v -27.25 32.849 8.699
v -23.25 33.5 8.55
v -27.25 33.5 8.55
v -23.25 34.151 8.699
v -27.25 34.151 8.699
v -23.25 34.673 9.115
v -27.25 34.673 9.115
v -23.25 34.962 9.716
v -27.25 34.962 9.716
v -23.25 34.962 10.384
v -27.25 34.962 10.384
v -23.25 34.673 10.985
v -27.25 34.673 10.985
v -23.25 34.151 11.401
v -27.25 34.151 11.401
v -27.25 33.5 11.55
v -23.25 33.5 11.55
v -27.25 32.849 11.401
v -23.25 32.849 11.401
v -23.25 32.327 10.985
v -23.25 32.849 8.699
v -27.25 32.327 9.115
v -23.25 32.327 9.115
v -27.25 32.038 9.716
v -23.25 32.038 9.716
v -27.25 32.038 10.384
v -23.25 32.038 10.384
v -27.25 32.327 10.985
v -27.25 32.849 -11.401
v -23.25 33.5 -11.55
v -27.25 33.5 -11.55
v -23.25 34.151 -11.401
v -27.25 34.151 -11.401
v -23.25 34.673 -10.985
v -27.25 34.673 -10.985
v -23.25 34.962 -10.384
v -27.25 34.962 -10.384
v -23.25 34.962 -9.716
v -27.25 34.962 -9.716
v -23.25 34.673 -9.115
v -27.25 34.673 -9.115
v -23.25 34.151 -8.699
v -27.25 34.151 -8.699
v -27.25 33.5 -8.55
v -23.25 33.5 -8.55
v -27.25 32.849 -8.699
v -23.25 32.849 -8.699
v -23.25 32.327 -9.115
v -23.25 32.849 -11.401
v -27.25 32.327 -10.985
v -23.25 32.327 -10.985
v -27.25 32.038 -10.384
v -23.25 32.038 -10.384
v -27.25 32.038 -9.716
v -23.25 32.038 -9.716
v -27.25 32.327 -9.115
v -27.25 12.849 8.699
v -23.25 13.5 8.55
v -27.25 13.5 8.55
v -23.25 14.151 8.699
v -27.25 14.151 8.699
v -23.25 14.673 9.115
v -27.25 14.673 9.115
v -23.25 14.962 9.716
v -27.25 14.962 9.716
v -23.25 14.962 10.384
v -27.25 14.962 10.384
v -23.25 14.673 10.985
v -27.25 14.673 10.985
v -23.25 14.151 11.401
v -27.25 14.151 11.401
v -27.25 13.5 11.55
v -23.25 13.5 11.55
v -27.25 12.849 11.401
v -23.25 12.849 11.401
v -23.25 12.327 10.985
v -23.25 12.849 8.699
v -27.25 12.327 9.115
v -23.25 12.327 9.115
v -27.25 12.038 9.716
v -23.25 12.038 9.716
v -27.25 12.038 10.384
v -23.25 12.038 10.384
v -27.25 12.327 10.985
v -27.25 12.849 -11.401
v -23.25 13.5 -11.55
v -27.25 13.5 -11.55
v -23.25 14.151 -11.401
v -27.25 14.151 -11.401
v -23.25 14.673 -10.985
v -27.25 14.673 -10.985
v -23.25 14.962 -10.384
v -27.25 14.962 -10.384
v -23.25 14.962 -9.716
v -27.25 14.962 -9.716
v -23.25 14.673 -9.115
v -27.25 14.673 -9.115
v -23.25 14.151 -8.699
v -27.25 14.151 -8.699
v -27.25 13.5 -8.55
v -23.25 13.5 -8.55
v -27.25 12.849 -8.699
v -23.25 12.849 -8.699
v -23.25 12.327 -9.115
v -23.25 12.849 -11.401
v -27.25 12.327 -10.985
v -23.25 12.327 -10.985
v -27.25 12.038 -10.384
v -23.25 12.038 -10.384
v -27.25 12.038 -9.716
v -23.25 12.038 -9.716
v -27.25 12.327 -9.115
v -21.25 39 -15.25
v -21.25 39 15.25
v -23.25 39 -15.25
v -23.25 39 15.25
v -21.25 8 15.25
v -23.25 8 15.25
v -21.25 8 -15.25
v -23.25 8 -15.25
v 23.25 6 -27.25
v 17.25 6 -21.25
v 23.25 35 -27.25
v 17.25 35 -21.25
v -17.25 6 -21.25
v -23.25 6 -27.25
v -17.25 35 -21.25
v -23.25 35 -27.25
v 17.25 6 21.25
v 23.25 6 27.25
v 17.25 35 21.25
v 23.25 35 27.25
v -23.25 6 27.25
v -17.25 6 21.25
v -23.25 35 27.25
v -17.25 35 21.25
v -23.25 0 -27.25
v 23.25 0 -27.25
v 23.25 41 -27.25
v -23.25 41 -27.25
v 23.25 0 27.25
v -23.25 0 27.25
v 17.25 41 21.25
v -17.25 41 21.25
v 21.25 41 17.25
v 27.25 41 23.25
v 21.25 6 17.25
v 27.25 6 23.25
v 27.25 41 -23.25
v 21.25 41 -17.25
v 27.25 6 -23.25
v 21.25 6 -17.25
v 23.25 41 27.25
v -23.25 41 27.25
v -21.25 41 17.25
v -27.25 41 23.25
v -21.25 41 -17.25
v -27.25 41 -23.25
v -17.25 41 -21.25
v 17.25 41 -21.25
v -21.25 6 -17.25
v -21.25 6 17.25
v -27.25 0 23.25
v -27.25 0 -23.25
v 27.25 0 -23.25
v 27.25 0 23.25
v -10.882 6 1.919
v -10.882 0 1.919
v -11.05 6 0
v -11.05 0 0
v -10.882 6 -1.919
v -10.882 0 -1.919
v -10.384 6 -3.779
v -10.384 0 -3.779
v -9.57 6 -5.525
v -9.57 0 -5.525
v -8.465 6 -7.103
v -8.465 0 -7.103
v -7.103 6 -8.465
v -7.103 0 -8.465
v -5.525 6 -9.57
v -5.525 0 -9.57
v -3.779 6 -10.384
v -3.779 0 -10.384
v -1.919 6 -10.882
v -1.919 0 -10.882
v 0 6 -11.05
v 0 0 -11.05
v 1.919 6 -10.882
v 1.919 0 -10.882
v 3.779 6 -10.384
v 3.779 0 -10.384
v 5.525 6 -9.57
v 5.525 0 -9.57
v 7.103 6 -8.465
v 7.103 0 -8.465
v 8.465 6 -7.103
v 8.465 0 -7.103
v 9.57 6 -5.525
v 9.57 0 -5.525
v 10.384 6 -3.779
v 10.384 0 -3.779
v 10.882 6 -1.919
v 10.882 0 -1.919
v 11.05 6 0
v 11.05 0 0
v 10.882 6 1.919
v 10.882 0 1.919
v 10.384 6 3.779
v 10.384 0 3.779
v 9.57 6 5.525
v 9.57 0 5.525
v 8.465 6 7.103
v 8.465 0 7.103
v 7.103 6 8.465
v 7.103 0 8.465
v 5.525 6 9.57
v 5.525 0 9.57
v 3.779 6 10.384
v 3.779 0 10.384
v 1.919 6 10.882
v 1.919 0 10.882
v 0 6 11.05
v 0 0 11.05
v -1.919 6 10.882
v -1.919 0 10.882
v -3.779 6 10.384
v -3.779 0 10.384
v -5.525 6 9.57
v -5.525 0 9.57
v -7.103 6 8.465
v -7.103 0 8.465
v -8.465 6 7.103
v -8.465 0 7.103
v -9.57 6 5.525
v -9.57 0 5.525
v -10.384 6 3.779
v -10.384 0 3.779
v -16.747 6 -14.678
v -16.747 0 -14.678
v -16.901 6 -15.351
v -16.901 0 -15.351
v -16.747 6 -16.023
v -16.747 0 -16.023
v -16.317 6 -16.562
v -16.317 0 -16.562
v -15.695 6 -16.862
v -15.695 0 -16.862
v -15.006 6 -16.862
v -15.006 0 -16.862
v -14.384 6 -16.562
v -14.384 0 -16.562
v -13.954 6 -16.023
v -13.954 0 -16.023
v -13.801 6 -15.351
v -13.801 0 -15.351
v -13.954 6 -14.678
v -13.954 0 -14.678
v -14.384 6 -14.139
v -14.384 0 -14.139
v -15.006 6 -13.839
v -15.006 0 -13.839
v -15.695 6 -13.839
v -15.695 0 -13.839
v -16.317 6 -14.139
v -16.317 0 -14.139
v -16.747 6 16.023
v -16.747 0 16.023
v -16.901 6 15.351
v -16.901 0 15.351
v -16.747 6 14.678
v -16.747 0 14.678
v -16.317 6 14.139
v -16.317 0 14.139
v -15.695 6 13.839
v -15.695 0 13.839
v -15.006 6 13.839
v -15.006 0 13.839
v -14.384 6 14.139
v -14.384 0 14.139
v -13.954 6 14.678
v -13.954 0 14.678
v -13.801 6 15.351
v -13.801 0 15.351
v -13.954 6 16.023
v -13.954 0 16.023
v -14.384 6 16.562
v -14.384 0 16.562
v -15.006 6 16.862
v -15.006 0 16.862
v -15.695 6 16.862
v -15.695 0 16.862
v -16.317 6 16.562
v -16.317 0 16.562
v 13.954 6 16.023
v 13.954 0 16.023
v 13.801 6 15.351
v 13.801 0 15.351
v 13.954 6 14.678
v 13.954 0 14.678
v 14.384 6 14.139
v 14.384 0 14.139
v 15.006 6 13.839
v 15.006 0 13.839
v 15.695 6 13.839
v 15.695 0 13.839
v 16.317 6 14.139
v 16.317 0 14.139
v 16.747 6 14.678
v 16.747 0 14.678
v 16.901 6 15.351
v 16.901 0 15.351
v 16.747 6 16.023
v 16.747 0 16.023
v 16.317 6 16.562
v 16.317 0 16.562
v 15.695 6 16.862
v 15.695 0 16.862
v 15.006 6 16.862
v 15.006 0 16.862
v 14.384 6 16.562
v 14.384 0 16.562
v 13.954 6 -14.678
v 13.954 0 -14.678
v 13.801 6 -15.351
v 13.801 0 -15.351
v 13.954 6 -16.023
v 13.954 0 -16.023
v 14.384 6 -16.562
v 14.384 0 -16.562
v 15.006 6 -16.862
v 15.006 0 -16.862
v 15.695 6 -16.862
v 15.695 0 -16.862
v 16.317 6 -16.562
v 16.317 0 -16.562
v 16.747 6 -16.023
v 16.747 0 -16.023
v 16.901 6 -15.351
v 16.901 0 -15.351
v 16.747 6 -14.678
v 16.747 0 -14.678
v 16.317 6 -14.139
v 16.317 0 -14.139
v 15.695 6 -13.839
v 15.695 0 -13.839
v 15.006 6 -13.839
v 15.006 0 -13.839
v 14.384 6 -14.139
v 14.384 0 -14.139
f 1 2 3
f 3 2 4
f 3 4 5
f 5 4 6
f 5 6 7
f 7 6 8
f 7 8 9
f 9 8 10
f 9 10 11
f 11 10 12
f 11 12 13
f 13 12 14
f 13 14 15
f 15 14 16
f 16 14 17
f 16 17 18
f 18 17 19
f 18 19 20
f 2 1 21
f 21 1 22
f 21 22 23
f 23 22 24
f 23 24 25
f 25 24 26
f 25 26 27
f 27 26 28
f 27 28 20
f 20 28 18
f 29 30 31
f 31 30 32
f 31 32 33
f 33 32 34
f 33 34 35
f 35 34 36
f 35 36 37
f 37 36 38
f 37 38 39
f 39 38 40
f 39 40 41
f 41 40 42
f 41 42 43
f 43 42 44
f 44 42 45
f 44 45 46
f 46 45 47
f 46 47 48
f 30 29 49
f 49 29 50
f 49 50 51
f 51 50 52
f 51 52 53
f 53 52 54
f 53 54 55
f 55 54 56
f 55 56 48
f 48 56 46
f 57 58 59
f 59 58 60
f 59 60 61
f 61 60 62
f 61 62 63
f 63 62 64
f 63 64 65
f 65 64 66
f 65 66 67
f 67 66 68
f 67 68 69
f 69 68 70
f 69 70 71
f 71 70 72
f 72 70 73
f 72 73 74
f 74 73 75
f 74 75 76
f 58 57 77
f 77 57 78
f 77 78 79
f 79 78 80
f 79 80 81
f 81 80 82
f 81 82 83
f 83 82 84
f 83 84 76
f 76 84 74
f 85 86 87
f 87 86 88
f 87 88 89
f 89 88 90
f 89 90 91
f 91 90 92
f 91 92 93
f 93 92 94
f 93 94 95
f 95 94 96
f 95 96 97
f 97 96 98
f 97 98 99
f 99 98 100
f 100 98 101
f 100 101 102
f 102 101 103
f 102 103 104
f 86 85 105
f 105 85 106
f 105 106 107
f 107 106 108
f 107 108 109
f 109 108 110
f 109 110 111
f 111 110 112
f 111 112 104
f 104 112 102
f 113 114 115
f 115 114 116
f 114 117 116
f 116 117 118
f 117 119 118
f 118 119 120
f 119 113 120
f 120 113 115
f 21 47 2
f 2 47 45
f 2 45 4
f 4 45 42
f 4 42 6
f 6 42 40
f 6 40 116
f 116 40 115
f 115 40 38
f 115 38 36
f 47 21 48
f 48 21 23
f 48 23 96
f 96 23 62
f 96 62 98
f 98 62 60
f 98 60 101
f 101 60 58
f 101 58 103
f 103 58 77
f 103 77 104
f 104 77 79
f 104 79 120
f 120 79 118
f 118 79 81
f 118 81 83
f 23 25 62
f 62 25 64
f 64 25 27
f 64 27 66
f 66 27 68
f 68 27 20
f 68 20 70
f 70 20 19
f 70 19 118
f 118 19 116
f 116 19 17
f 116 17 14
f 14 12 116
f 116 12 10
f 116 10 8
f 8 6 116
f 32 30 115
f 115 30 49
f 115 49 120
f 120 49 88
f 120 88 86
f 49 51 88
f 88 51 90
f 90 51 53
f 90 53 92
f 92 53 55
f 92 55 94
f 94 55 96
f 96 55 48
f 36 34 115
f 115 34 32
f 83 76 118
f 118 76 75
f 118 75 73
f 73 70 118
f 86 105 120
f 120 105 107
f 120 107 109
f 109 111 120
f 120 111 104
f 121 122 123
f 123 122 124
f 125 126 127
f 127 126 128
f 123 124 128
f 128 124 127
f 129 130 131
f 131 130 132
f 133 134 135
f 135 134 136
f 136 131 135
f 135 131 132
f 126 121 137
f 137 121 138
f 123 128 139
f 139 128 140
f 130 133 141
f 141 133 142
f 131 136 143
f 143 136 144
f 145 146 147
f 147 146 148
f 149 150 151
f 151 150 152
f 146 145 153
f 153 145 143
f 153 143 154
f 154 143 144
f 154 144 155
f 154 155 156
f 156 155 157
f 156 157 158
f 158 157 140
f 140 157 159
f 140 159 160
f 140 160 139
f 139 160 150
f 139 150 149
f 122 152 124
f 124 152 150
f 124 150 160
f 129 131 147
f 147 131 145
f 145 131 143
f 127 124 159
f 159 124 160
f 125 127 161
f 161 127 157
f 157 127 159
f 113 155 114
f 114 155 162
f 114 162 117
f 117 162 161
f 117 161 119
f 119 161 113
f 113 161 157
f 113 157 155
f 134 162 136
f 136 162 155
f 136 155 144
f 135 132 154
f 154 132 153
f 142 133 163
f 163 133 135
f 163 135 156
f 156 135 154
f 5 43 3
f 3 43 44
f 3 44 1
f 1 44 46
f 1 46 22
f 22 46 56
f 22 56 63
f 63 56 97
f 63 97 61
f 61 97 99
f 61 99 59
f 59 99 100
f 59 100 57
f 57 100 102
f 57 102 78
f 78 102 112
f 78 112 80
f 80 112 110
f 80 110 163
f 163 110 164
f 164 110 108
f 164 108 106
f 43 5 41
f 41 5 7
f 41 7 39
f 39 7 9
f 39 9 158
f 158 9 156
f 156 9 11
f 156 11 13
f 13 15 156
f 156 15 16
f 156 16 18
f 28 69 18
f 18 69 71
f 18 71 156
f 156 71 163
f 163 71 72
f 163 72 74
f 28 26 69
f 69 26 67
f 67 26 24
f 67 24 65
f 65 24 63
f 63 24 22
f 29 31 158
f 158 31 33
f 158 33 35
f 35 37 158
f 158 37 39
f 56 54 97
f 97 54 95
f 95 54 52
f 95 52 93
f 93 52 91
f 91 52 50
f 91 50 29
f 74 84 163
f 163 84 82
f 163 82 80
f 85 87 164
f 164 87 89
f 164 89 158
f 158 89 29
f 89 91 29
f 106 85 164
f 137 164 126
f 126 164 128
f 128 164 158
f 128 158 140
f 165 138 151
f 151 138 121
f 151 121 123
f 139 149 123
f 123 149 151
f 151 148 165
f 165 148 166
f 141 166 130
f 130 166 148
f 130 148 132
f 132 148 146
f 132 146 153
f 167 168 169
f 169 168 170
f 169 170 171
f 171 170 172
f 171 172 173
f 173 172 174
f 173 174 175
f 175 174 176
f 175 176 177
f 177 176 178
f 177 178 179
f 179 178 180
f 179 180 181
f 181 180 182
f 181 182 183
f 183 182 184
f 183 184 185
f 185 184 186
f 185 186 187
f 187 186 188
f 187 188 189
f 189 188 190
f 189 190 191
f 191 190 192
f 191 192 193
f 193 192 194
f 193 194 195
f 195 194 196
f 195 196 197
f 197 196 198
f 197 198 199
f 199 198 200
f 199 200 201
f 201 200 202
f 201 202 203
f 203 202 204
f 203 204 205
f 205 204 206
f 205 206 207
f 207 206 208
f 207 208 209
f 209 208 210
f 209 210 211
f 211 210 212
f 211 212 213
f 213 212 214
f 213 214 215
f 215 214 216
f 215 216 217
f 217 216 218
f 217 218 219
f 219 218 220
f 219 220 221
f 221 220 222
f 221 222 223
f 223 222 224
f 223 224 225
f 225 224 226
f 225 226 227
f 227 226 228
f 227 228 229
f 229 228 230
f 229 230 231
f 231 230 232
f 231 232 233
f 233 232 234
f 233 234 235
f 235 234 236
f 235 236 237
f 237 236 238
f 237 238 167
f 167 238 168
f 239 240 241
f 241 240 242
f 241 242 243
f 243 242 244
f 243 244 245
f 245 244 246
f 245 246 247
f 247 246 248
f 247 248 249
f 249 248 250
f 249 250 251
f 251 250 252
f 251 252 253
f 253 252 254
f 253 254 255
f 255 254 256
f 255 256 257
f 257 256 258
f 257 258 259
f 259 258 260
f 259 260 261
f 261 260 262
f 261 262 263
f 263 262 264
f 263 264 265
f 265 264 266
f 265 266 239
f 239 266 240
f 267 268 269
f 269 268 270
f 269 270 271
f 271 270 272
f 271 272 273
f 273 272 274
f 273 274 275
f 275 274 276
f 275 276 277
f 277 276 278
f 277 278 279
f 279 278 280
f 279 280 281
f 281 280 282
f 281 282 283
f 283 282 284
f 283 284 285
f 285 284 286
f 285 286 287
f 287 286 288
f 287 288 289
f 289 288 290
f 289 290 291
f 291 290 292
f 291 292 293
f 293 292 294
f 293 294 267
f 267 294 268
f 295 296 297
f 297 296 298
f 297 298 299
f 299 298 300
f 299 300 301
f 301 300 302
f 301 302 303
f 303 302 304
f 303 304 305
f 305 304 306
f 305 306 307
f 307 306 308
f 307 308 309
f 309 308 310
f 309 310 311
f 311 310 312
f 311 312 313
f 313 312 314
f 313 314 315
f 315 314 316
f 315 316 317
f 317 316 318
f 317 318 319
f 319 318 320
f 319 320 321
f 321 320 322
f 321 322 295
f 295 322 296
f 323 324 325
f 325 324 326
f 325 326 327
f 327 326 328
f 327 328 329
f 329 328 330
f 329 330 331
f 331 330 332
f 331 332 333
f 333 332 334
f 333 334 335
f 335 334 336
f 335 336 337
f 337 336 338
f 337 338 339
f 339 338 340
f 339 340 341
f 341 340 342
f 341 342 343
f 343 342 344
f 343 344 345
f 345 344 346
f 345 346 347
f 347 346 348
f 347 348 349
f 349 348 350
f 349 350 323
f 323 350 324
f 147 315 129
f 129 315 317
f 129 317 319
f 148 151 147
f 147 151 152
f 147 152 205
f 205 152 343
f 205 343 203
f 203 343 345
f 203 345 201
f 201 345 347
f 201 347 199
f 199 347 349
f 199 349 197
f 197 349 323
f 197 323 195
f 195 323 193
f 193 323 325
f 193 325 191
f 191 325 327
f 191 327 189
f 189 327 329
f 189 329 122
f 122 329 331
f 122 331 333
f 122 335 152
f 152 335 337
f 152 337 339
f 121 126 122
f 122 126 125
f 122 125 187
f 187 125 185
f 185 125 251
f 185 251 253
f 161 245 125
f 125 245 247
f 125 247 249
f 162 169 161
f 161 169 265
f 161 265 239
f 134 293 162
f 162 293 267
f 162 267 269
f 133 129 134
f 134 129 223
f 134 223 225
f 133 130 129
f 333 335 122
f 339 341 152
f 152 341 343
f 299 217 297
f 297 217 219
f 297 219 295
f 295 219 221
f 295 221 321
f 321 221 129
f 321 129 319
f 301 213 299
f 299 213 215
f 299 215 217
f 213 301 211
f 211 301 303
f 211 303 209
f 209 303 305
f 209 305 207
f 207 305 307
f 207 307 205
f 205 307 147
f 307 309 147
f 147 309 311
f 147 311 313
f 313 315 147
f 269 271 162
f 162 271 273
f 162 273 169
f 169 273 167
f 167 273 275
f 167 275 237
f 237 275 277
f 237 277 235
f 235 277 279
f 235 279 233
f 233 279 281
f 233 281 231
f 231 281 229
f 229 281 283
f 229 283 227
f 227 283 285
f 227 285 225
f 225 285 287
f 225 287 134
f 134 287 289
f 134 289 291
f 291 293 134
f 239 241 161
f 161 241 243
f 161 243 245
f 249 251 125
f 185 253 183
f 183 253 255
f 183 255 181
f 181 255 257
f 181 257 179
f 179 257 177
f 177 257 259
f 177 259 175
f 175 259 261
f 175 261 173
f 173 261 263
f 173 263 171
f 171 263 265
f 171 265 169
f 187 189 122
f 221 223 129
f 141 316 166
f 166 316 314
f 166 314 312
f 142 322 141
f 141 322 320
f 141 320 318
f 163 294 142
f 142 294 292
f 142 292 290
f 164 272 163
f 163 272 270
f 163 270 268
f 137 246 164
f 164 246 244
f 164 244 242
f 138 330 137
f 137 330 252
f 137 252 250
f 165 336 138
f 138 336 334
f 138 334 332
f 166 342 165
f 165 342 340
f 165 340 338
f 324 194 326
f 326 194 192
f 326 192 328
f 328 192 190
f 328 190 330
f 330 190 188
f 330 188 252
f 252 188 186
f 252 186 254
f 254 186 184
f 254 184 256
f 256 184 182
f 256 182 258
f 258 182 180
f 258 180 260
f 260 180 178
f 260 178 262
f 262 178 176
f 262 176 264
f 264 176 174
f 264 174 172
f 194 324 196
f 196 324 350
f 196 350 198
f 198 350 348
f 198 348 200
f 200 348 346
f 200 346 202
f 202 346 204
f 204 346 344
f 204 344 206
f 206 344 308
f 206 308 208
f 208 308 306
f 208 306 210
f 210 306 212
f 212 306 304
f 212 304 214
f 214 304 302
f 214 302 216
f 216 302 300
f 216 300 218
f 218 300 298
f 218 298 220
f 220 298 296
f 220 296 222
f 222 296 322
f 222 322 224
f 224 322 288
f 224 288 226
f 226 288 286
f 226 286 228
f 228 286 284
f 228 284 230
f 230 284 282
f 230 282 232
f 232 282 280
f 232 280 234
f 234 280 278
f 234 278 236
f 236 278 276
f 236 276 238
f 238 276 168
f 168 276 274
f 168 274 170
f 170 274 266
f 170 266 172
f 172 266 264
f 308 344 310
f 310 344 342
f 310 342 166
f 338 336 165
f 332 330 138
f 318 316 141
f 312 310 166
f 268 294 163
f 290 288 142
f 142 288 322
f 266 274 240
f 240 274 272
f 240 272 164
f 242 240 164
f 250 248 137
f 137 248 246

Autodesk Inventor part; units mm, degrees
ref_plane "YZ Plane" through (0, 0, 0) normal (1, 0, 0) x (0, 1, 0)
ref_plane "XZ Plane" through (0, 0, 0) normal (0, 1, 0) x (-1, 0, 0)
ref_plane "XY Plane" through (0, 0, 0) normal (0, 0, 1) x (1, 0, 0)
sketch "Sketch1" plane through (0, 0, 0) normal (0, 1, 0) x (-1, 0, 0)
  circle A0 centre (0, 0) radius 11.05
  line L0 (21.25, 17.25) -> (21.25, -17.25)
  line L1 (21.25, -17.25) -> (17.25, -21.25)
  line L2 (17.25, -21.25) -> (-17.25, -21.25)
  line L3 (-17.25, -21.25) -> (-21.25, -17.25)
  line L4 (-21.25, -17.25) -> (-21.25, 17.25)
  line L5 (-21.25, 17.25) -> (-17.25, 21.25)
  line L6 (-17.25, 21.25) -> (17.25, 21.25)
  line L7 (17.25, 21.25) -> (21.25, 17.25)
  line L8 (21.25, 0) -> (-21.25, 0) construction
  line L9 (0, 21.25) -> (0, -21.25) construction
  circle A1 centre (15.3506, -15.3506) radius 1.55
  line L10 (15.3506, -15.3506) -> (0, 0) construction
  circle A2 centre (15.3506, 15.3506) radius 1.55
  circle A3 centre (-15.3506, 15.3506) radius 1.55
  circle A4 centre (-15.3506, -15.3506) radius 1.55
  point P0 (0, 0)
  dimension "d0" = 22.1
  dimension "d1" = 135
  dimension "d2" = 42.5
  dimension "d3" = 5.6569
  dimension "d25" = 3.1
  dimension "d26" = 21.709
  dimension "d27" = 45
  dimension "d30" = 360
extrude "Extrusion1" add sketch "Sketch1" along normal blind 6
sketch "Sketch6" plane through (0, 0, 0) normal (0, -1, 0) x (1, 0, 0)
  line L0 (27.25, -23.25) -> (27.25, 23.25)
  line L1 (27.25, 23.25) -> (23.25, 27.25)
  line L2 (23.25, 27.25) -> (-23.25, 27.25)
  line L3 (-23.25, 27.25) -> (-27.25, 23.25)
  line L4 (-27.25, 23.25) -> (-27.25, -23.25)
  line L5 (-27.25, -23.25) -> (-23.25, -27.25)
  line L6 (-23.25, -27.25) -> (23.25, -27.25)
  line L7 (23.25, -27.25) -> (27.25, -23.25)
  line L8 (25.25, -25.25) -> (-25.25, 25.25) construction
  line L9 (-17.25, 21.25) -> (17.25, 21.25) construction
  line L10 (23.25, 27.25) -> (17.25, 21.25) construction
  line L11 (27.25, 23.25) -> (21.25, 17.25) construction
  line L12 (21.25, -17.25) -> (17.25, -21.25) projected
  line L13 (21.25, 17.25) -> (21.25, -17.25) projected
  line L14 (21.25, -17.25) -> (21.25, 17.25)
  line L15 (17.25, 21.25) -> (21.25, 17.25) projected
  line L16 (21.25, 17.25) -> (17.25, 21.25)
  line L17 (17.25, 21.25) -> (-17.25, 21.25)
  line L18 (-21.25, 17.25) -> (-17.25, 21.25) projected
  line L19 (-21.25, 17.25) -> (-17.25, 21.25)
  line L20 (17.25, 21.25) -> (21.25, 17.25)
  line L21 (-21.25, -17.25) -> (-21.25, 17.25) projected
  line L22 (-21.25, 17.25) -> (-21.25, -17.25)
  line L23 (-21.25, -17.25) -> (-17.25, -21.25)
  line L24 (-17.25, -21.25) -> (17.25, -21.25)
  line L25 (17.25, -21.25) -> (21.25, -17.25)
  point P0 (0, 0)
  point P1 (0, 0)
  dimension "d32" = 135
  dimension "d33" = 135
  dimension "d34" = 46.5
extrude "Extrusion5" add sketch "Sketch6" against normal blind 41
sketch "Sketch8" plane through (0, 41, 0) normal (0, 1, 0) x (1, 0, 0)
  line L0 (27.25, -23.25) -> (27.25, 23.25) projected
  line L1 (21.25, -17.25) -> (21.25, 17.25) projected
  line L2 (27.25, 23.25) -> (21.25, 17.25)
  line L3 (17.25, -21.25) -> (21.25, -17.25) projected
  line L4 (21.25, 17.25) -> (21.25, -17.25)
  line L5 (21.25, -17.25) -> (27.25, -23.25)
  line L6 (27.25, -23.25) -> (27.25, 23.25)
  point P0 (0, 0)
  point P1 (27.25, -23.25)
extrude "Extrusion6" cut sketch "Sketch8" against normal blind 35
sketch "Sketch9" plane through (0, 6, 0) normal (0, 1, 0) x (1, 0, 0)
  line L0 (23.25, 27.25) -> (-23.25, 27.25) projected
  line L1 (17.25, 21.25) -> (21.25, 17.25) projected
  line L2 (23.25, 27.25) -> (17.25, 21.25)
  line L3 (-21.25, 17.25) -> (-17.25, 21.25) projected
  line L4 (17.25, 21.25) -> (-17.25, 21.25)
  line L5 (-17.25, 21.25) -> (-23.25, 27.25)
  line L6 (-23.25, 27.25) -> (23.25, 27.25)
  line L7 (-17.25, -21.25) -> (17.25, -21.25) projected
  line L8 (23.25, -27.25) -> (-23.25, -27.25) projected
  line L9 (17.25, -21.25) -> (23.25, -27.25)
  line L10 (23.25, -27.25) -> (-23.25, -27.25)
  line L11 (-23.25, -27.25) -> (-17.25, -21.25)
  line L12 (-17.25, -21.25) -> (17.25, -21.25)
  point P0 (0, 0)
  point P1 (-23.25, 27.25)
extrude "Extrusion7" cut sketch "Sketch9" along normal blind 29
sketch "Sketch10" plane through (-21.25, 6, -17.25) normal (1, 0, 0) x (0, 0, -1)
  line L0 (6, 0) -> (-40.5, 0) construction
  line L1 (-17.25, 0) -> (-17.25, 35) construction
  line L2 (-34.5, 35) -> (0, 35) construction
  line L3 (0, 0) -> (0, 35) construction
  line L4 (0, 17.5) -> (-34.5, 17.5) construction
  line L5 (-34.5, 0) -> (-34.5, 35) construction
  line L6 (-32.5, 2) -> (-2, 2)
  line L7 (-2, 2) -> (-2, 33)
  line L8 (-2, 33) -> (-32.5, 33)
  line L9 (-32.5, 33) -> (-32.5, 2)
  line L10 (-17.25, 2) -> (-17.25, 33) construction
  line L11 (-32.5, 17.5) -> (-2, 17.5) construction
  point P0 (-17.25, -6)
  point P1 (-17.25, 17.5)
  dimension "d41" = 2
  dimension "d42" = 2
extrude "Extrusion8" cut sketch "Sketch10" against normal blind 2
sketch "Sketch11" plane through (-23.25, 6, -17.25) normal (1, 0, 0) x (0, 0, -1)
  line L0 (-7.2, 7.5) -> (-27.3, 7.5) construction
  line L1 (-27.3, 7.5) -> (-27.3, 27.5) construction
  line L2 (-27.3, 27.5) -> (-7.2, 27.5) construction
  line L3 (-7.2, 27.5) -> (-7.2, 7.5) construction
  line L4 (-2, 33) -> (-2, 2) construction
  line L5 (-32.5, 2) -> (-32.5, 33) construction
  line L6 (-2, 2) -> (-32.5, 33) construction
  line L7 (-32.5, 33) -> (-2, 33) construction
  line L8 (-32.5, 2) -> (-2, 33) construction
  line L9 (-7.2, 7.5) -> (-27.3, 27.5) construction
  line L10 (-27.3, 7.5) -> (-7.2, 27.5) construction
  point P0 (-17.25, -6)
  point P1 (-17.25, 17.5)
  dimension "d45" = 20.1
  dimension "d46" = 20
hole "Hole2" at (-23.25, 13.5, -10.05) at (-23.25, 13.5, 10.05) at (-23.25, 33.5, -10.05) at (-23.25, 33.5, 10.05) direction (-1, 0, 0) diameter 3 depth 4
equation "\"d0\" = shaft_hole_diameter"
equation "\"d4\" = mount_face_thickness"
equation "\"d34\" = mount_width"
equation "\"d35\" = mount_length"
equation "\"d37\" = mount_length - mount_face_thickness"
equation "\"d39\" = mount_length - 2 * mount_face_thickness"
equation "\"d45\" = screw_x"
equation "\"d46\" = screw_y"
equation "\"d47\" = screw_diameter"
equation "\"shaft_hole_diameter\" = 22.1"
equation "\"mount_width\" = 46.5"
equation "\"mount_slant_length\" = 5"
equation "\"mount_face_thickness\" = 6"
equation "\"mount_length\" = 41"
equation "\"screw_x\" = 20.1"
equation "\"screw_y\" = 20"
equation "\"screw_diameter\" = 3"
properties part number "table_motor_mount"
